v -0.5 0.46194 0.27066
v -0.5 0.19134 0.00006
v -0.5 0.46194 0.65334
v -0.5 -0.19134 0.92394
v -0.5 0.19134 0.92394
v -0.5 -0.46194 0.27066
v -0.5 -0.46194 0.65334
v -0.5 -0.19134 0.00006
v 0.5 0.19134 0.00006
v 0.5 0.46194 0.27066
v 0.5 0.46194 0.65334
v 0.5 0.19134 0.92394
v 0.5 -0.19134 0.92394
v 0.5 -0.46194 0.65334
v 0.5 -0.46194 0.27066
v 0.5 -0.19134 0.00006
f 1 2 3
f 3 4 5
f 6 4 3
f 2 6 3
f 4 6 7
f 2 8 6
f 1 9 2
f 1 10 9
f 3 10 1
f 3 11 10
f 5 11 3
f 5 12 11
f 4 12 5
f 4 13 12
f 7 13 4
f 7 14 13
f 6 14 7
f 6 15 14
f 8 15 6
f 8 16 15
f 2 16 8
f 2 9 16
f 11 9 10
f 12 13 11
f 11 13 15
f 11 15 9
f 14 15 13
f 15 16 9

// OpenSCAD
//Octangonal Prism for Basic Shapes
//by Slashee the Cow

translate([-0.5,0,0.462])
rotate([22.5,0,0])
rotate([0,90,0])
linear_extrude(1, false)
circle(d  = 1, $fn = 8);
